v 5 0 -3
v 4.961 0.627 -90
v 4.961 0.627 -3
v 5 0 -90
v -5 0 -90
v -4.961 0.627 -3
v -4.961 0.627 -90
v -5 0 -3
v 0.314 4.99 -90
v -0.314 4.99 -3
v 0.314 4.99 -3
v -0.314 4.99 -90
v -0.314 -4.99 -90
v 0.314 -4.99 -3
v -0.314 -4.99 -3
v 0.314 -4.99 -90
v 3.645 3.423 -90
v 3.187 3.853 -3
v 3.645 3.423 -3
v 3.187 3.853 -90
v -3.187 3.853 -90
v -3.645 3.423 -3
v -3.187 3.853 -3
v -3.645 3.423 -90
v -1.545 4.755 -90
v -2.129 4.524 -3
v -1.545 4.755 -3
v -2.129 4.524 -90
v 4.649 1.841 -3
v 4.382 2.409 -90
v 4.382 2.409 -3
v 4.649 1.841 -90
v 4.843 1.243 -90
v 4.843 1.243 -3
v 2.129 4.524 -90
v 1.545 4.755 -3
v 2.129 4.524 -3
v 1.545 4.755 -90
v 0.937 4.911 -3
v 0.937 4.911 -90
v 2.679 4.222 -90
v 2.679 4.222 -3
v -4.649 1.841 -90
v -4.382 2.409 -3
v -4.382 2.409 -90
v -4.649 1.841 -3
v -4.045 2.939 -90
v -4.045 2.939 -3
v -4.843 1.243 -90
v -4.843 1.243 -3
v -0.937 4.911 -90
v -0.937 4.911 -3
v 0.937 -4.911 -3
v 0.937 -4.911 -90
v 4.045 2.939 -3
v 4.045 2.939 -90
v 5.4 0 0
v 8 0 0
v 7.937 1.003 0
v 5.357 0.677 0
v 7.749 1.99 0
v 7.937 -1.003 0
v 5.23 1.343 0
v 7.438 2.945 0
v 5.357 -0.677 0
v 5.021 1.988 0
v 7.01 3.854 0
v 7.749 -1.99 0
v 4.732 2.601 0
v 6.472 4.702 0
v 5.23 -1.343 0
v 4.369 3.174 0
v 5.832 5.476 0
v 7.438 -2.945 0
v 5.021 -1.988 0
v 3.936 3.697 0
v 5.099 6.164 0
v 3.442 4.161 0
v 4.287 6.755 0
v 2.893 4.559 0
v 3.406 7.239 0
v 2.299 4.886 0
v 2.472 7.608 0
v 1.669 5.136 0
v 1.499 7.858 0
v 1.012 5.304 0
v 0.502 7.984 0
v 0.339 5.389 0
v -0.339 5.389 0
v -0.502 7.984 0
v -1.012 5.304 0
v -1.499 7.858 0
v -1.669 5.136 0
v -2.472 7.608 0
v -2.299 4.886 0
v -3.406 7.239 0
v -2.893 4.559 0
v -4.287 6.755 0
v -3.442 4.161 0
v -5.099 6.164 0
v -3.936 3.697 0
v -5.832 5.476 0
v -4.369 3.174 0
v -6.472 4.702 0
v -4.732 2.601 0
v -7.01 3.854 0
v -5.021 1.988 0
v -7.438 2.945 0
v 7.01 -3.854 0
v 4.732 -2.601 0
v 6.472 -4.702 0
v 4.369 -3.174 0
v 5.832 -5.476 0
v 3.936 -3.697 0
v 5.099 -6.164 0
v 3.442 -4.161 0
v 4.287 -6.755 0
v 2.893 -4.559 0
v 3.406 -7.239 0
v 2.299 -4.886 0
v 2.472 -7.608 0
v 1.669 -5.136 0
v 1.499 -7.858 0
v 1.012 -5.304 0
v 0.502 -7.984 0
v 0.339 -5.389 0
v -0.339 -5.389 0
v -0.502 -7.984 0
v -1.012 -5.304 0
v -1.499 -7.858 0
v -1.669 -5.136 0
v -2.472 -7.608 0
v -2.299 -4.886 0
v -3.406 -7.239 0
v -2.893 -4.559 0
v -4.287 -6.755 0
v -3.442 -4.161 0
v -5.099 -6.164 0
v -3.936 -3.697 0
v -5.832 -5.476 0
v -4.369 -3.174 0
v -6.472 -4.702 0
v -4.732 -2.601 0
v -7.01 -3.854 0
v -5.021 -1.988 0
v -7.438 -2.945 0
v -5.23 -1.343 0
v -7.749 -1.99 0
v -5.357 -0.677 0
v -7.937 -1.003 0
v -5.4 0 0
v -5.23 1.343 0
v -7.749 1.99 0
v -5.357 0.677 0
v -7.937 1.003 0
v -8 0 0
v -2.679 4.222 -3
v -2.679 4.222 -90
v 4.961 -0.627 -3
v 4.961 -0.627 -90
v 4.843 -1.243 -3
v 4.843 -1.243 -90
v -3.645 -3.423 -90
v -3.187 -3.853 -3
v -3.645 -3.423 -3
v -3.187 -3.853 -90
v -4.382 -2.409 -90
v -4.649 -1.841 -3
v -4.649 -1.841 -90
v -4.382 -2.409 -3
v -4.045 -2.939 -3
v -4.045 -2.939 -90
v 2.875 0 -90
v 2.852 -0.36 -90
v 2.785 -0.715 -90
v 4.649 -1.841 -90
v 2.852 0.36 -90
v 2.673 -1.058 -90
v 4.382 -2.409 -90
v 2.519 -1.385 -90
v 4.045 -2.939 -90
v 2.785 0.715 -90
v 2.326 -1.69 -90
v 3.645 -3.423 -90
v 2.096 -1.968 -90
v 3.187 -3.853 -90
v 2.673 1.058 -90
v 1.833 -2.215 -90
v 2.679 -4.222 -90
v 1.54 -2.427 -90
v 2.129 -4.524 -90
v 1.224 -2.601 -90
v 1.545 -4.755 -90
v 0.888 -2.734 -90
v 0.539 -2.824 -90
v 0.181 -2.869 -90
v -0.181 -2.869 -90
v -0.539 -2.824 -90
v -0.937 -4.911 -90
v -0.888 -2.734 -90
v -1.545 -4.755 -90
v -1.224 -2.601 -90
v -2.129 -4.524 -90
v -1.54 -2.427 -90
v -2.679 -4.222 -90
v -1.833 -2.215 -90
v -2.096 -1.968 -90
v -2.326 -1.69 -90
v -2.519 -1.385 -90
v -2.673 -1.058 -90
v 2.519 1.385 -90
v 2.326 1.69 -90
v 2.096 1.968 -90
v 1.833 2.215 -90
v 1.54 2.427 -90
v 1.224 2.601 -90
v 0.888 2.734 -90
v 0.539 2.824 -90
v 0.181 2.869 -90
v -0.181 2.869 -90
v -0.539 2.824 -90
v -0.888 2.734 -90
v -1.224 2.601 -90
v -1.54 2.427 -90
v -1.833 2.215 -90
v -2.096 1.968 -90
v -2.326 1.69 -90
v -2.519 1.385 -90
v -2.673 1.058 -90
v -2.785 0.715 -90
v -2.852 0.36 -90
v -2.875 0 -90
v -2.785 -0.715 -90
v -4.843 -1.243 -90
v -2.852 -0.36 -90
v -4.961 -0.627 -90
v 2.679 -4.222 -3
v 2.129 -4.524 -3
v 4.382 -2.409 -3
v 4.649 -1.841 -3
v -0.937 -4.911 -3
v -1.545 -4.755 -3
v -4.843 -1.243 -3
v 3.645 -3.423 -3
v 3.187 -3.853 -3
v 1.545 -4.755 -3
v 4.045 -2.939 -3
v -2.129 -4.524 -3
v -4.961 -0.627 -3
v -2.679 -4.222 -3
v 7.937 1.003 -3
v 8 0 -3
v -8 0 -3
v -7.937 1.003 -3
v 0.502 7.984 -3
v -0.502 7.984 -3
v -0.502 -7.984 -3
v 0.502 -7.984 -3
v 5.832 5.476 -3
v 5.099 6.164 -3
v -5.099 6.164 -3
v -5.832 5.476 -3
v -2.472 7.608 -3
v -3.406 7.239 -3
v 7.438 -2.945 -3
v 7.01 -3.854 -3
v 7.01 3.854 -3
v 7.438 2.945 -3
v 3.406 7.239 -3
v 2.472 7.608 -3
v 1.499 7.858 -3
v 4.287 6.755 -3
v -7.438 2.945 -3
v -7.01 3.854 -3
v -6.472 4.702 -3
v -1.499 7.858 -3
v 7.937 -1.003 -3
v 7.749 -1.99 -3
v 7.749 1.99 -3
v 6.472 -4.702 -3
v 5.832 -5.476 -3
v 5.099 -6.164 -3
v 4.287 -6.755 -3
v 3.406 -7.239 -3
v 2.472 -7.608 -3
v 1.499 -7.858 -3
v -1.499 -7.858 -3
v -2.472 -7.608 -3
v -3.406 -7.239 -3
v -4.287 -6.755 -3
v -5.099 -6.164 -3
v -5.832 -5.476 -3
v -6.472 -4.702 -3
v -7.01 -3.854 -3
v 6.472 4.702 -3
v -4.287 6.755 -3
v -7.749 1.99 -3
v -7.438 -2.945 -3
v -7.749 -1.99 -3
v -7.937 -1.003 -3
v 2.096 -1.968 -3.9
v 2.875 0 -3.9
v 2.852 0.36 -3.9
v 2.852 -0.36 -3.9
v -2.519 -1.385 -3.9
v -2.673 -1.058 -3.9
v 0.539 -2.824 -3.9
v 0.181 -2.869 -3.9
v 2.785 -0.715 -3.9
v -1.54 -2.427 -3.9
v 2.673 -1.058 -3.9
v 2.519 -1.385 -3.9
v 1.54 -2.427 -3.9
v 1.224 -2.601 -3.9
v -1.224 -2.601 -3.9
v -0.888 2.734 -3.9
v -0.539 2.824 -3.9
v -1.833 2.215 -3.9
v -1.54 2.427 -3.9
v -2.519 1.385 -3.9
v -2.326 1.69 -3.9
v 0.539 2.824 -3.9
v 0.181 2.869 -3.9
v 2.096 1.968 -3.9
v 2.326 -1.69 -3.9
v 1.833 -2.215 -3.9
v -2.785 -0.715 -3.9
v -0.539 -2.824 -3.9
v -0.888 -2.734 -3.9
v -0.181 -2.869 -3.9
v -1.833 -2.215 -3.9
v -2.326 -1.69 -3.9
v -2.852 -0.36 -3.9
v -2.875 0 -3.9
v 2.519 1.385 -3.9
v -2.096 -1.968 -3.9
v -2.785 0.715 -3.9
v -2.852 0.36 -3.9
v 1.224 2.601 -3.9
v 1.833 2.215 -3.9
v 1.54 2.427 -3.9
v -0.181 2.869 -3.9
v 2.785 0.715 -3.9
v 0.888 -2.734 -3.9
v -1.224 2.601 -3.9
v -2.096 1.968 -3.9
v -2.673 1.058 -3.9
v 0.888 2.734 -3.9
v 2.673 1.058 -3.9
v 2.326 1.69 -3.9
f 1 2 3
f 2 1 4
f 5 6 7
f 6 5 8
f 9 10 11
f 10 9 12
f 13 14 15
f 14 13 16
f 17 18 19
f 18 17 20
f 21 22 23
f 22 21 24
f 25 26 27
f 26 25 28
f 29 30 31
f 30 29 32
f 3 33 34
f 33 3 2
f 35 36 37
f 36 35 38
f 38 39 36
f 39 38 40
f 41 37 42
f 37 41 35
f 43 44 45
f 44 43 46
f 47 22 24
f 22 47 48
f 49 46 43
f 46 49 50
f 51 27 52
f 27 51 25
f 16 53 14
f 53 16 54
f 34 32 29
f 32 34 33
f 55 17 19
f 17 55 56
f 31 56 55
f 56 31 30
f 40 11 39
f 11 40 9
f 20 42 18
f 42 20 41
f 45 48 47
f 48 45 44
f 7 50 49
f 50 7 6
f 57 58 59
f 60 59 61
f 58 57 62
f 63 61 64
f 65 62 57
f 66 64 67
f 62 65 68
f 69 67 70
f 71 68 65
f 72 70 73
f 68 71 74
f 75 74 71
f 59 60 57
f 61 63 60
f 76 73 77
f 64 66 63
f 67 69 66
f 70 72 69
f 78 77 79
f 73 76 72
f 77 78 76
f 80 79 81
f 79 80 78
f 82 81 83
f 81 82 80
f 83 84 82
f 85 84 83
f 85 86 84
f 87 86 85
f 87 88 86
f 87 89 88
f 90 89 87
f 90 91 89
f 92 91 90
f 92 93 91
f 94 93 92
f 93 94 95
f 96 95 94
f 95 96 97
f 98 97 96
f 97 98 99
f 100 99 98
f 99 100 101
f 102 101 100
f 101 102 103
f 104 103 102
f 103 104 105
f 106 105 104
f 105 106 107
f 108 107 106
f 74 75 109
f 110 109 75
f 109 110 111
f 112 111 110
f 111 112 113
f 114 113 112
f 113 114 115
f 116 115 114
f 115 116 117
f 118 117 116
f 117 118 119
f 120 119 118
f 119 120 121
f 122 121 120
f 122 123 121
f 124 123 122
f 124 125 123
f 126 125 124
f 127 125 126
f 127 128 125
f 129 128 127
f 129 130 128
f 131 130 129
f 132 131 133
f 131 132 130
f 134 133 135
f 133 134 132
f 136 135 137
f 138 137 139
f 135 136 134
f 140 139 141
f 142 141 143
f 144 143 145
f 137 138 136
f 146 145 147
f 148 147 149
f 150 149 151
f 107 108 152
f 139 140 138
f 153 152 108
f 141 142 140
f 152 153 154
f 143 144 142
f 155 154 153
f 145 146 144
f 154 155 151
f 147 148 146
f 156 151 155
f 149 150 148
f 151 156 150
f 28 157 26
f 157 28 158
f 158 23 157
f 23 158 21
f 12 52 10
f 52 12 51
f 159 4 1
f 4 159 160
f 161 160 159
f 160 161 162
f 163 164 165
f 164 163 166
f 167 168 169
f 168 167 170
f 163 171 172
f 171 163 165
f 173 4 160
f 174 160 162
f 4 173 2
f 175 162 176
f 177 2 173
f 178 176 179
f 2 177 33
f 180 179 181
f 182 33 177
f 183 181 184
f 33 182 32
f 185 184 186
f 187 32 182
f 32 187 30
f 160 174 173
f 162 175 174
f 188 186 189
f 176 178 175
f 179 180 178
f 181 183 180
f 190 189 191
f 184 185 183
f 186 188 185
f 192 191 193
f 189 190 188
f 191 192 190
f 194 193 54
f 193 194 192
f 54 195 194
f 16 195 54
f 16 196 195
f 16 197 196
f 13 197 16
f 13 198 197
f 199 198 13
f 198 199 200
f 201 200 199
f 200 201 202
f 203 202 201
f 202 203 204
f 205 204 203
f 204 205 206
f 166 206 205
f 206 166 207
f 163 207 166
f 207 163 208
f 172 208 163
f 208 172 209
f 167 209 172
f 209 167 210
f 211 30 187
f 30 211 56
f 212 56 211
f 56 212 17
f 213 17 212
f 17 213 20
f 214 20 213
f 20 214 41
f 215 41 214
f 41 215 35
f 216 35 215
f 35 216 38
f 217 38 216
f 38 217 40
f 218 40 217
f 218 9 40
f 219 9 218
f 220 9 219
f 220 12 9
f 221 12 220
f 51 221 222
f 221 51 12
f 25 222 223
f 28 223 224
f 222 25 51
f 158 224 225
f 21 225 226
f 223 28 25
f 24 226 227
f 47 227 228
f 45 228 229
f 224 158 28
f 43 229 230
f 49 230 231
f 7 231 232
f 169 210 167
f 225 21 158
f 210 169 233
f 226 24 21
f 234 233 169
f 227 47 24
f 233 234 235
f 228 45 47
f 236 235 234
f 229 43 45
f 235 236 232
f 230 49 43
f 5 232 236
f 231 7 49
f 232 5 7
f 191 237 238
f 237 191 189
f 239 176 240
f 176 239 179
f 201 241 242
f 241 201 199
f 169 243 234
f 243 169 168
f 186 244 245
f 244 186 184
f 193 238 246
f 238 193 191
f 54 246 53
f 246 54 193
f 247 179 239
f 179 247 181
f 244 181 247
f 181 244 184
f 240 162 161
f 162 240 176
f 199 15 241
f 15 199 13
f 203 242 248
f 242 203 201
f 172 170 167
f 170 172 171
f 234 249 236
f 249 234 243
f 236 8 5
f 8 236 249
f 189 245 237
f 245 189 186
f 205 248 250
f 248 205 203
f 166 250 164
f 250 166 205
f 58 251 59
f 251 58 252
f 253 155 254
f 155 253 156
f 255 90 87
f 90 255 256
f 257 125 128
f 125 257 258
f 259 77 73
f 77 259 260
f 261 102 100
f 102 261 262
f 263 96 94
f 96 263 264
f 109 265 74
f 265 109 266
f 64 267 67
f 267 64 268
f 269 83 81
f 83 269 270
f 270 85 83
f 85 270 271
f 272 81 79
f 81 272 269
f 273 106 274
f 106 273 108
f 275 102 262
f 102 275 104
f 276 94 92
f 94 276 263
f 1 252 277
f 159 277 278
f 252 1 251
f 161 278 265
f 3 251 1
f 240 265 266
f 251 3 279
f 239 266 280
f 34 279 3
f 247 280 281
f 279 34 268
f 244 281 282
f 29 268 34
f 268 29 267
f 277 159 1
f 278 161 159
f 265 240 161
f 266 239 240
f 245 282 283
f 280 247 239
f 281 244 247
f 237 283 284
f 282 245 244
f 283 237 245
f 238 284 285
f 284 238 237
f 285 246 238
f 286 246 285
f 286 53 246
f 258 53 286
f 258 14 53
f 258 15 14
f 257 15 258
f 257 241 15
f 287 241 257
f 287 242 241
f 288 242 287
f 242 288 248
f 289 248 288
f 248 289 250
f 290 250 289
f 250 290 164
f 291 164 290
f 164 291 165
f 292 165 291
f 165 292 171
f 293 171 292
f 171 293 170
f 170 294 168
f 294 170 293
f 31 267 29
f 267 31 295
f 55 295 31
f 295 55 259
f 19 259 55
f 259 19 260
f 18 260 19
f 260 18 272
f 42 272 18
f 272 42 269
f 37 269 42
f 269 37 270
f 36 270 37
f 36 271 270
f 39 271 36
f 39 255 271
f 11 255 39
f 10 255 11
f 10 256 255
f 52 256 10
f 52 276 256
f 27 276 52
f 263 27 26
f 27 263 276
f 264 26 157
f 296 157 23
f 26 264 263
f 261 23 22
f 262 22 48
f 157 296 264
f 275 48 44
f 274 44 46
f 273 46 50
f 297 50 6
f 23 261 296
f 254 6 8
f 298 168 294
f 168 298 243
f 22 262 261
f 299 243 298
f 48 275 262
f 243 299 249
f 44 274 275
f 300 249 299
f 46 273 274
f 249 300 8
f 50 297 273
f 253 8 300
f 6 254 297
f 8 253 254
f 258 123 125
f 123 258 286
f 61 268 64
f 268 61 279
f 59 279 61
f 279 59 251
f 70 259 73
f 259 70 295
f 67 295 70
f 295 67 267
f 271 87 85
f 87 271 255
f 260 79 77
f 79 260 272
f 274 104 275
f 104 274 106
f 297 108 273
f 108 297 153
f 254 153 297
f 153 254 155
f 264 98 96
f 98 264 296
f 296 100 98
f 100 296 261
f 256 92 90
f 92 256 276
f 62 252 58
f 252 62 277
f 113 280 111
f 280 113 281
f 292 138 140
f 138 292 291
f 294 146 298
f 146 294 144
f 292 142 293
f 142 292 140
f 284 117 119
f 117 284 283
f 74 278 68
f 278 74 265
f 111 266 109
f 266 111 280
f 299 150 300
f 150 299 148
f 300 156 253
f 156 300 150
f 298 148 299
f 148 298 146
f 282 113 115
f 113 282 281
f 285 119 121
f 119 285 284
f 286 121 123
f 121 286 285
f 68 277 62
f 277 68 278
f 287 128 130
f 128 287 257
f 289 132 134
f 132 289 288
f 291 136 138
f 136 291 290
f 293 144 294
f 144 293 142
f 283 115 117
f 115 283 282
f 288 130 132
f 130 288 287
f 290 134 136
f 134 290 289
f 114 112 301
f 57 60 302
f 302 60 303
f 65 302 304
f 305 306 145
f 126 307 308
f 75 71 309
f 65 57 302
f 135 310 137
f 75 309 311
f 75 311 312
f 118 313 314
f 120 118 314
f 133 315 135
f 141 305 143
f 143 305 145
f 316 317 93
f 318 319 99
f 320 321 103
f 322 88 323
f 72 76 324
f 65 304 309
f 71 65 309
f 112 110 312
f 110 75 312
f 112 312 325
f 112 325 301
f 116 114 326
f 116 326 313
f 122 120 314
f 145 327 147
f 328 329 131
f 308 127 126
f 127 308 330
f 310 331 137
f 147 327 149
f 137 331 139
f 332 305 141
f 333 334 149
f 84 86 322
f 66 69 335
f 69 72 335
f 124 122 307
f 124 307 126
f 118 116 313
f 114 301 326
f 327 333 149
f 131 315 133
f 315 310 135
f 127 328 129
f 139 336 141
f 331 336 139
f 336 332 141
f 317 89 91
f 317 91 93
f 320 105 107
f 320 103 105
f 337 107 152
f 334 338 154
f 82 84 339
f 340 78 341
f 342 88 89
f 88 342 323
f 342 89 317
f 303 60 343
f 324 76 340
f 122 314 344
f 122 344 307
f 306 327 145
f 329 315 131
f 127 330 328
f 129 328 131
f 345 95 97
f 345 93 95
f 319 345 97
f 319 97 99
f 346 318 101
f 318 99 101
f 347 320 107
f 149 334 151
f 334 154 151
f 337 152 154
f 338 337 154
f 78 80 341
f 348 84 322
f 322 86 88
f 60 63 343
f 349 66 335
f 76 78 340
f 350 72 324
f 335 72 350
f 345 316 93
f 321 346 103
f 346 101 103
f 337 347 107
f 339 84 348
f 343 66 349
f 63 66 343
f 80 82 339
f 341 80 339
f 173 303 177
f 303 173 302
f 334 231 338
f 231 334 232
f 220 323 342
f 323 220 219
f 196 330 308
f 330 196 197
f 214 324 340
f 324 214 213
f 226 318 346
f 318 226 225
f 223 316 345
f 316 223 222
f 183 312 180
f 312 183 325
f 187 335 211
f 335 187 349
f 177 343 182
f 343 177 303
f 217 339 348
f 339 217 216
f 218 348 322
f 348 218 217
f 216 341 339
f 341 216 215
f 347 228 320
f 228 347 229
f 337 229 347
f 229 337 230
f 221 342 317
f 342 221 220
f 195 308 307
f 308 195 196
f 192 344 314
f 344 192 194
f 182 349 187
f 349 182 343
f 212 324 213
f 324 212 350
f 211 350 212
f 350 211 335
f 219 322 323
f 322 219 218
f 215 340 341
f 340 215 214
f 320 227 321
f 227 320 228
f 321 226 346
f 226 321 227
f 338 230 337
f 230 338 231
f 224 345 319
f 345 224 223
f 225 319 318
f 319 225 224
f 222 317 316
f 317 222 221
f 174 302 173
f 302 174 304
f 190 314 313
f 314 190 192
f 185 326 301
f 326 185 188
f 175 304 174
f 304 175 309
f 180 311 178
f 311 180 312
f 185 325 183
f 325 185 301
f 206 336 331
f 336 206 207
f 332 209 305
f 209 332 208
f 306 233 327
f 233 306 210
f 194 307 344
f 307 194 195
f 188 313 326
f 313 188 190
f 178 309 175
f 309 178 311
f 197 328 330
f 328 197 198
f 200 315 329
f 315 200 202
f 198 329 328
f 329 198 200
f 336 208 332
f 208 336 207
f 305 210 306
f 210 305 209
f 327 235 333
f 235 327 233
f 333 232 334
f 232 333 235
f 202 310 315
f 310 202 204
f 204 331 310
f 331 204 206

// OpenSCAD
$fn = 50;


difference() {
	union() {
		translate(v = [0, 0, -90.0000000000]) {
			cylinder(h = 90, r = 5.0000000000);
		}
		translate(v = [0, 0, -3.0000000000]) {
			cylinder(h = 3, r = 8.0000000000);
		}
	}
	union() {
		translate(v = [0, 0, 0]) {
			rotate(a = [0, 0, 0]) {
				difference() {
					union() {
						#translate(v = [0, 0, -90.0000000000]) {
							cylinder(h = 90, r = 2.6000000000);
						}
						#translate(v = [0, 0, -3.9000000000]) {
							cylinder(h = 3.9000000000, r1 = 2.8750000000, r2 = 5.4000000000);
						}
						#translate(v = [0, 0, -90.0000000000]) {
							cylinder(h = 90, r = 2.8750000000);
						}
						#translate(v = [0, 0, -90.0000000000]) {
							cylinder(h = 90, r = 2.6000000000);
						}
					}
					union();
				}
			}
		}
	}
}
